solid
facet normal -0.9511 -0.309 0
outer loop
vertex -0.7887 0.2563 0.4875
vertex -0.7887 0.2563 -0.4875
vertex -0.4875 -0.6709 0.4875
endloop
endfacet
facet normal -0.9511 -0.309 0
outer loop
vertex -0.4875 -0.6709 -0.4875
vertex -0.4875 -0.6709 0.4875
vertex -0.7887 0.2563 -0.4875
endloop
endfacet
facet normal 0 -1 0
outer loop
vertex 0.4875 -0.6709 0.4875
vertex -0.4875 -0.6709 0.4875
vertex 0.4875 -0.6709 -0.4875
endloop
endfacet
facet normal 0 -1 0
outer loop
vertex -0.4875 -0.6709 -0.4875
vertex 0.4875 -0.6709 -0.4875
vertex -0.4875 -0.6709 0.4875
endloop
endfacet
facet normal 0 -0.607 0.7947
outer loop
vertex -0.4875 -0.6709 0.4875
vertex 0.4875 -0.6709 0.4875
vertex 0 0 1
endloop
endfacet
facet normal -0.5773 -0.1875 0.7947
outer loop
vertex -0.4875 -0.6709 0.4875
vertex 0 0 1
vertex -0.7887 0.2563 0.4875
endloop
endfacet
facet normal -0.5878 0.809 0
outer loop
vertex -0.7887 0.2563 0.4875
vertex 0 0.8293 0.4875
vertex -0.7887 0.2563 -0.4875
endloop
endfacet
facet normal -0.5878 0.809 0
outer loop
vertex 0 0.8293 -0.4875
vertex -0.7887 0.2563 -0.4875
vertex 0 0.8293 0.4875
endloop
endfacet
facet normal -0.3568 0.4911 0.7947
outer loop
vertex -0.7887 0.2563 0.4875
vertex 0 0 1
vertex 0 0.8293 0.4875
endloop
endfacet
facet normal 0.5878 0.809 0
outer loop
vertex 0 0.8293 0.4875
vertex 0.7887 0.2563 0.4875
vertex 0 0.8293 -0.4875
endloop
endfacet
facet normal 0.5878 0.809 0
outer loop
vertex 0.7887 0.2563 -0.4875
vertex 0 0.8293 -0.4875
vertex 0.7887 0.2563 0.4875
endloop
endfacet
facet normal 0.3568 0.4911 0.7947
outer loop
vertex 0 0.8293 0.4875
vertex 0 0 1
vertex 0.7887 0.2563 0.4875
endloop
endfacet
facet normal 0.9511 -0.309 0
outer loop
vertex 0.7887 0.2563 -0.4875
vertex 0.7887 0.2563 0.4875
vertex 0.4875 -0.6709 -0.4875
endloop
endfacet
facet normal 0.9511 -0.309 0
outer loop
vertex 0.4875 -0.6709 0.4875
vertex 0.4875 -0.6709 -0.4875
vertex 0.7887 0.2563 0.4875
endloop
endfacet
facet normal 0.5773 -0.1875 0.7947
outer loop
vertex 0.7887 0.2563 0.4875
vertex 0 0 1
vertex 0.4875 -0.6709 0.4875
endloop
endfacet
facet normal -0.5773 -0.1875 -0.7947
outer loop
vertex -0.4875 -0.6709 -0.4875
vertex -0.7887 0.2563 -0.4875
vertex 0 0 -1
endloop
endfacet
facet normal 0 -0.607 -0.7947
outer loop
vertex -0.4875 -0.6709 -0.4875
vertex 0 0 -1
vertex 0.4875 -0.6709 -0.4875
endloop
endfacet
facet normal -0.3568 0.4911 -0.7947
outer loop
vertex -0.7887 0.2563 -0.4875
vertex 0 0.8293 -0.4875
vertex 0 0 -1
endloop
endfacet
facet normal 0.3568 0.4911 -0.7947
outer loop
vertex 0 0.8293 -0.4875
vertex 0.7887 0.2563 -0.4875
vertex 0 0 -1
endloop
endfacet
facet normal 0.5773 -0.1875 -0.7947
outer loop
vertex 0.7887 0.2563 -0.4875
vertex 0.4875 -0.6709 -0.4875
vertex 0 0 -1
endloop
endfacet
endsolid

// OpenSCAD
polyhedron( points = [[-0.48745718456896, -0.670927255946894, 0.487457184546752], [-0.788722292681565, 0.256271407786563, 0.487457184546752], [-1.18264010979432e-10, 0.829311696273127, 0.487457184546752], [0.78872229253708, 0.256271407786563, 0.487457184546752], [0.487457184573414, -0.670927255946894, 0.487457184546752], [-0.48745718452519, -0.670927255886649, -0.487457184595622], [-0.788722292632703, 0.25627140783114, -0.487457184491607], [8.49315958871431e-11, 0.829311696166374, -0.487457184471096], [0.788722292710079, 0.256271407689497, -0.487457184562434], [0.487457184573414, -0.670927255886649, -0.487457184639396], [2.74974538307806e-11, 1.7446435676022e-11, 1.0], [2.02664486739876e-11, 1.16374946465211e-10, -0.999999999973603]], faces = [[0, 1, 6, 5], [0, 5, 9, 4], [0, 4, 10], [0, 10, 1], [1, 2, 7, 6], [1, 10, 2], [2, 3, 8, 7], [2, 10, 3], [3, 4, 9, 8], [3, 10, 4], [5, 6, 11], [5, 11, 9], [6, 7, 11], [7, 8, 11], [8, 9, 11]]);
